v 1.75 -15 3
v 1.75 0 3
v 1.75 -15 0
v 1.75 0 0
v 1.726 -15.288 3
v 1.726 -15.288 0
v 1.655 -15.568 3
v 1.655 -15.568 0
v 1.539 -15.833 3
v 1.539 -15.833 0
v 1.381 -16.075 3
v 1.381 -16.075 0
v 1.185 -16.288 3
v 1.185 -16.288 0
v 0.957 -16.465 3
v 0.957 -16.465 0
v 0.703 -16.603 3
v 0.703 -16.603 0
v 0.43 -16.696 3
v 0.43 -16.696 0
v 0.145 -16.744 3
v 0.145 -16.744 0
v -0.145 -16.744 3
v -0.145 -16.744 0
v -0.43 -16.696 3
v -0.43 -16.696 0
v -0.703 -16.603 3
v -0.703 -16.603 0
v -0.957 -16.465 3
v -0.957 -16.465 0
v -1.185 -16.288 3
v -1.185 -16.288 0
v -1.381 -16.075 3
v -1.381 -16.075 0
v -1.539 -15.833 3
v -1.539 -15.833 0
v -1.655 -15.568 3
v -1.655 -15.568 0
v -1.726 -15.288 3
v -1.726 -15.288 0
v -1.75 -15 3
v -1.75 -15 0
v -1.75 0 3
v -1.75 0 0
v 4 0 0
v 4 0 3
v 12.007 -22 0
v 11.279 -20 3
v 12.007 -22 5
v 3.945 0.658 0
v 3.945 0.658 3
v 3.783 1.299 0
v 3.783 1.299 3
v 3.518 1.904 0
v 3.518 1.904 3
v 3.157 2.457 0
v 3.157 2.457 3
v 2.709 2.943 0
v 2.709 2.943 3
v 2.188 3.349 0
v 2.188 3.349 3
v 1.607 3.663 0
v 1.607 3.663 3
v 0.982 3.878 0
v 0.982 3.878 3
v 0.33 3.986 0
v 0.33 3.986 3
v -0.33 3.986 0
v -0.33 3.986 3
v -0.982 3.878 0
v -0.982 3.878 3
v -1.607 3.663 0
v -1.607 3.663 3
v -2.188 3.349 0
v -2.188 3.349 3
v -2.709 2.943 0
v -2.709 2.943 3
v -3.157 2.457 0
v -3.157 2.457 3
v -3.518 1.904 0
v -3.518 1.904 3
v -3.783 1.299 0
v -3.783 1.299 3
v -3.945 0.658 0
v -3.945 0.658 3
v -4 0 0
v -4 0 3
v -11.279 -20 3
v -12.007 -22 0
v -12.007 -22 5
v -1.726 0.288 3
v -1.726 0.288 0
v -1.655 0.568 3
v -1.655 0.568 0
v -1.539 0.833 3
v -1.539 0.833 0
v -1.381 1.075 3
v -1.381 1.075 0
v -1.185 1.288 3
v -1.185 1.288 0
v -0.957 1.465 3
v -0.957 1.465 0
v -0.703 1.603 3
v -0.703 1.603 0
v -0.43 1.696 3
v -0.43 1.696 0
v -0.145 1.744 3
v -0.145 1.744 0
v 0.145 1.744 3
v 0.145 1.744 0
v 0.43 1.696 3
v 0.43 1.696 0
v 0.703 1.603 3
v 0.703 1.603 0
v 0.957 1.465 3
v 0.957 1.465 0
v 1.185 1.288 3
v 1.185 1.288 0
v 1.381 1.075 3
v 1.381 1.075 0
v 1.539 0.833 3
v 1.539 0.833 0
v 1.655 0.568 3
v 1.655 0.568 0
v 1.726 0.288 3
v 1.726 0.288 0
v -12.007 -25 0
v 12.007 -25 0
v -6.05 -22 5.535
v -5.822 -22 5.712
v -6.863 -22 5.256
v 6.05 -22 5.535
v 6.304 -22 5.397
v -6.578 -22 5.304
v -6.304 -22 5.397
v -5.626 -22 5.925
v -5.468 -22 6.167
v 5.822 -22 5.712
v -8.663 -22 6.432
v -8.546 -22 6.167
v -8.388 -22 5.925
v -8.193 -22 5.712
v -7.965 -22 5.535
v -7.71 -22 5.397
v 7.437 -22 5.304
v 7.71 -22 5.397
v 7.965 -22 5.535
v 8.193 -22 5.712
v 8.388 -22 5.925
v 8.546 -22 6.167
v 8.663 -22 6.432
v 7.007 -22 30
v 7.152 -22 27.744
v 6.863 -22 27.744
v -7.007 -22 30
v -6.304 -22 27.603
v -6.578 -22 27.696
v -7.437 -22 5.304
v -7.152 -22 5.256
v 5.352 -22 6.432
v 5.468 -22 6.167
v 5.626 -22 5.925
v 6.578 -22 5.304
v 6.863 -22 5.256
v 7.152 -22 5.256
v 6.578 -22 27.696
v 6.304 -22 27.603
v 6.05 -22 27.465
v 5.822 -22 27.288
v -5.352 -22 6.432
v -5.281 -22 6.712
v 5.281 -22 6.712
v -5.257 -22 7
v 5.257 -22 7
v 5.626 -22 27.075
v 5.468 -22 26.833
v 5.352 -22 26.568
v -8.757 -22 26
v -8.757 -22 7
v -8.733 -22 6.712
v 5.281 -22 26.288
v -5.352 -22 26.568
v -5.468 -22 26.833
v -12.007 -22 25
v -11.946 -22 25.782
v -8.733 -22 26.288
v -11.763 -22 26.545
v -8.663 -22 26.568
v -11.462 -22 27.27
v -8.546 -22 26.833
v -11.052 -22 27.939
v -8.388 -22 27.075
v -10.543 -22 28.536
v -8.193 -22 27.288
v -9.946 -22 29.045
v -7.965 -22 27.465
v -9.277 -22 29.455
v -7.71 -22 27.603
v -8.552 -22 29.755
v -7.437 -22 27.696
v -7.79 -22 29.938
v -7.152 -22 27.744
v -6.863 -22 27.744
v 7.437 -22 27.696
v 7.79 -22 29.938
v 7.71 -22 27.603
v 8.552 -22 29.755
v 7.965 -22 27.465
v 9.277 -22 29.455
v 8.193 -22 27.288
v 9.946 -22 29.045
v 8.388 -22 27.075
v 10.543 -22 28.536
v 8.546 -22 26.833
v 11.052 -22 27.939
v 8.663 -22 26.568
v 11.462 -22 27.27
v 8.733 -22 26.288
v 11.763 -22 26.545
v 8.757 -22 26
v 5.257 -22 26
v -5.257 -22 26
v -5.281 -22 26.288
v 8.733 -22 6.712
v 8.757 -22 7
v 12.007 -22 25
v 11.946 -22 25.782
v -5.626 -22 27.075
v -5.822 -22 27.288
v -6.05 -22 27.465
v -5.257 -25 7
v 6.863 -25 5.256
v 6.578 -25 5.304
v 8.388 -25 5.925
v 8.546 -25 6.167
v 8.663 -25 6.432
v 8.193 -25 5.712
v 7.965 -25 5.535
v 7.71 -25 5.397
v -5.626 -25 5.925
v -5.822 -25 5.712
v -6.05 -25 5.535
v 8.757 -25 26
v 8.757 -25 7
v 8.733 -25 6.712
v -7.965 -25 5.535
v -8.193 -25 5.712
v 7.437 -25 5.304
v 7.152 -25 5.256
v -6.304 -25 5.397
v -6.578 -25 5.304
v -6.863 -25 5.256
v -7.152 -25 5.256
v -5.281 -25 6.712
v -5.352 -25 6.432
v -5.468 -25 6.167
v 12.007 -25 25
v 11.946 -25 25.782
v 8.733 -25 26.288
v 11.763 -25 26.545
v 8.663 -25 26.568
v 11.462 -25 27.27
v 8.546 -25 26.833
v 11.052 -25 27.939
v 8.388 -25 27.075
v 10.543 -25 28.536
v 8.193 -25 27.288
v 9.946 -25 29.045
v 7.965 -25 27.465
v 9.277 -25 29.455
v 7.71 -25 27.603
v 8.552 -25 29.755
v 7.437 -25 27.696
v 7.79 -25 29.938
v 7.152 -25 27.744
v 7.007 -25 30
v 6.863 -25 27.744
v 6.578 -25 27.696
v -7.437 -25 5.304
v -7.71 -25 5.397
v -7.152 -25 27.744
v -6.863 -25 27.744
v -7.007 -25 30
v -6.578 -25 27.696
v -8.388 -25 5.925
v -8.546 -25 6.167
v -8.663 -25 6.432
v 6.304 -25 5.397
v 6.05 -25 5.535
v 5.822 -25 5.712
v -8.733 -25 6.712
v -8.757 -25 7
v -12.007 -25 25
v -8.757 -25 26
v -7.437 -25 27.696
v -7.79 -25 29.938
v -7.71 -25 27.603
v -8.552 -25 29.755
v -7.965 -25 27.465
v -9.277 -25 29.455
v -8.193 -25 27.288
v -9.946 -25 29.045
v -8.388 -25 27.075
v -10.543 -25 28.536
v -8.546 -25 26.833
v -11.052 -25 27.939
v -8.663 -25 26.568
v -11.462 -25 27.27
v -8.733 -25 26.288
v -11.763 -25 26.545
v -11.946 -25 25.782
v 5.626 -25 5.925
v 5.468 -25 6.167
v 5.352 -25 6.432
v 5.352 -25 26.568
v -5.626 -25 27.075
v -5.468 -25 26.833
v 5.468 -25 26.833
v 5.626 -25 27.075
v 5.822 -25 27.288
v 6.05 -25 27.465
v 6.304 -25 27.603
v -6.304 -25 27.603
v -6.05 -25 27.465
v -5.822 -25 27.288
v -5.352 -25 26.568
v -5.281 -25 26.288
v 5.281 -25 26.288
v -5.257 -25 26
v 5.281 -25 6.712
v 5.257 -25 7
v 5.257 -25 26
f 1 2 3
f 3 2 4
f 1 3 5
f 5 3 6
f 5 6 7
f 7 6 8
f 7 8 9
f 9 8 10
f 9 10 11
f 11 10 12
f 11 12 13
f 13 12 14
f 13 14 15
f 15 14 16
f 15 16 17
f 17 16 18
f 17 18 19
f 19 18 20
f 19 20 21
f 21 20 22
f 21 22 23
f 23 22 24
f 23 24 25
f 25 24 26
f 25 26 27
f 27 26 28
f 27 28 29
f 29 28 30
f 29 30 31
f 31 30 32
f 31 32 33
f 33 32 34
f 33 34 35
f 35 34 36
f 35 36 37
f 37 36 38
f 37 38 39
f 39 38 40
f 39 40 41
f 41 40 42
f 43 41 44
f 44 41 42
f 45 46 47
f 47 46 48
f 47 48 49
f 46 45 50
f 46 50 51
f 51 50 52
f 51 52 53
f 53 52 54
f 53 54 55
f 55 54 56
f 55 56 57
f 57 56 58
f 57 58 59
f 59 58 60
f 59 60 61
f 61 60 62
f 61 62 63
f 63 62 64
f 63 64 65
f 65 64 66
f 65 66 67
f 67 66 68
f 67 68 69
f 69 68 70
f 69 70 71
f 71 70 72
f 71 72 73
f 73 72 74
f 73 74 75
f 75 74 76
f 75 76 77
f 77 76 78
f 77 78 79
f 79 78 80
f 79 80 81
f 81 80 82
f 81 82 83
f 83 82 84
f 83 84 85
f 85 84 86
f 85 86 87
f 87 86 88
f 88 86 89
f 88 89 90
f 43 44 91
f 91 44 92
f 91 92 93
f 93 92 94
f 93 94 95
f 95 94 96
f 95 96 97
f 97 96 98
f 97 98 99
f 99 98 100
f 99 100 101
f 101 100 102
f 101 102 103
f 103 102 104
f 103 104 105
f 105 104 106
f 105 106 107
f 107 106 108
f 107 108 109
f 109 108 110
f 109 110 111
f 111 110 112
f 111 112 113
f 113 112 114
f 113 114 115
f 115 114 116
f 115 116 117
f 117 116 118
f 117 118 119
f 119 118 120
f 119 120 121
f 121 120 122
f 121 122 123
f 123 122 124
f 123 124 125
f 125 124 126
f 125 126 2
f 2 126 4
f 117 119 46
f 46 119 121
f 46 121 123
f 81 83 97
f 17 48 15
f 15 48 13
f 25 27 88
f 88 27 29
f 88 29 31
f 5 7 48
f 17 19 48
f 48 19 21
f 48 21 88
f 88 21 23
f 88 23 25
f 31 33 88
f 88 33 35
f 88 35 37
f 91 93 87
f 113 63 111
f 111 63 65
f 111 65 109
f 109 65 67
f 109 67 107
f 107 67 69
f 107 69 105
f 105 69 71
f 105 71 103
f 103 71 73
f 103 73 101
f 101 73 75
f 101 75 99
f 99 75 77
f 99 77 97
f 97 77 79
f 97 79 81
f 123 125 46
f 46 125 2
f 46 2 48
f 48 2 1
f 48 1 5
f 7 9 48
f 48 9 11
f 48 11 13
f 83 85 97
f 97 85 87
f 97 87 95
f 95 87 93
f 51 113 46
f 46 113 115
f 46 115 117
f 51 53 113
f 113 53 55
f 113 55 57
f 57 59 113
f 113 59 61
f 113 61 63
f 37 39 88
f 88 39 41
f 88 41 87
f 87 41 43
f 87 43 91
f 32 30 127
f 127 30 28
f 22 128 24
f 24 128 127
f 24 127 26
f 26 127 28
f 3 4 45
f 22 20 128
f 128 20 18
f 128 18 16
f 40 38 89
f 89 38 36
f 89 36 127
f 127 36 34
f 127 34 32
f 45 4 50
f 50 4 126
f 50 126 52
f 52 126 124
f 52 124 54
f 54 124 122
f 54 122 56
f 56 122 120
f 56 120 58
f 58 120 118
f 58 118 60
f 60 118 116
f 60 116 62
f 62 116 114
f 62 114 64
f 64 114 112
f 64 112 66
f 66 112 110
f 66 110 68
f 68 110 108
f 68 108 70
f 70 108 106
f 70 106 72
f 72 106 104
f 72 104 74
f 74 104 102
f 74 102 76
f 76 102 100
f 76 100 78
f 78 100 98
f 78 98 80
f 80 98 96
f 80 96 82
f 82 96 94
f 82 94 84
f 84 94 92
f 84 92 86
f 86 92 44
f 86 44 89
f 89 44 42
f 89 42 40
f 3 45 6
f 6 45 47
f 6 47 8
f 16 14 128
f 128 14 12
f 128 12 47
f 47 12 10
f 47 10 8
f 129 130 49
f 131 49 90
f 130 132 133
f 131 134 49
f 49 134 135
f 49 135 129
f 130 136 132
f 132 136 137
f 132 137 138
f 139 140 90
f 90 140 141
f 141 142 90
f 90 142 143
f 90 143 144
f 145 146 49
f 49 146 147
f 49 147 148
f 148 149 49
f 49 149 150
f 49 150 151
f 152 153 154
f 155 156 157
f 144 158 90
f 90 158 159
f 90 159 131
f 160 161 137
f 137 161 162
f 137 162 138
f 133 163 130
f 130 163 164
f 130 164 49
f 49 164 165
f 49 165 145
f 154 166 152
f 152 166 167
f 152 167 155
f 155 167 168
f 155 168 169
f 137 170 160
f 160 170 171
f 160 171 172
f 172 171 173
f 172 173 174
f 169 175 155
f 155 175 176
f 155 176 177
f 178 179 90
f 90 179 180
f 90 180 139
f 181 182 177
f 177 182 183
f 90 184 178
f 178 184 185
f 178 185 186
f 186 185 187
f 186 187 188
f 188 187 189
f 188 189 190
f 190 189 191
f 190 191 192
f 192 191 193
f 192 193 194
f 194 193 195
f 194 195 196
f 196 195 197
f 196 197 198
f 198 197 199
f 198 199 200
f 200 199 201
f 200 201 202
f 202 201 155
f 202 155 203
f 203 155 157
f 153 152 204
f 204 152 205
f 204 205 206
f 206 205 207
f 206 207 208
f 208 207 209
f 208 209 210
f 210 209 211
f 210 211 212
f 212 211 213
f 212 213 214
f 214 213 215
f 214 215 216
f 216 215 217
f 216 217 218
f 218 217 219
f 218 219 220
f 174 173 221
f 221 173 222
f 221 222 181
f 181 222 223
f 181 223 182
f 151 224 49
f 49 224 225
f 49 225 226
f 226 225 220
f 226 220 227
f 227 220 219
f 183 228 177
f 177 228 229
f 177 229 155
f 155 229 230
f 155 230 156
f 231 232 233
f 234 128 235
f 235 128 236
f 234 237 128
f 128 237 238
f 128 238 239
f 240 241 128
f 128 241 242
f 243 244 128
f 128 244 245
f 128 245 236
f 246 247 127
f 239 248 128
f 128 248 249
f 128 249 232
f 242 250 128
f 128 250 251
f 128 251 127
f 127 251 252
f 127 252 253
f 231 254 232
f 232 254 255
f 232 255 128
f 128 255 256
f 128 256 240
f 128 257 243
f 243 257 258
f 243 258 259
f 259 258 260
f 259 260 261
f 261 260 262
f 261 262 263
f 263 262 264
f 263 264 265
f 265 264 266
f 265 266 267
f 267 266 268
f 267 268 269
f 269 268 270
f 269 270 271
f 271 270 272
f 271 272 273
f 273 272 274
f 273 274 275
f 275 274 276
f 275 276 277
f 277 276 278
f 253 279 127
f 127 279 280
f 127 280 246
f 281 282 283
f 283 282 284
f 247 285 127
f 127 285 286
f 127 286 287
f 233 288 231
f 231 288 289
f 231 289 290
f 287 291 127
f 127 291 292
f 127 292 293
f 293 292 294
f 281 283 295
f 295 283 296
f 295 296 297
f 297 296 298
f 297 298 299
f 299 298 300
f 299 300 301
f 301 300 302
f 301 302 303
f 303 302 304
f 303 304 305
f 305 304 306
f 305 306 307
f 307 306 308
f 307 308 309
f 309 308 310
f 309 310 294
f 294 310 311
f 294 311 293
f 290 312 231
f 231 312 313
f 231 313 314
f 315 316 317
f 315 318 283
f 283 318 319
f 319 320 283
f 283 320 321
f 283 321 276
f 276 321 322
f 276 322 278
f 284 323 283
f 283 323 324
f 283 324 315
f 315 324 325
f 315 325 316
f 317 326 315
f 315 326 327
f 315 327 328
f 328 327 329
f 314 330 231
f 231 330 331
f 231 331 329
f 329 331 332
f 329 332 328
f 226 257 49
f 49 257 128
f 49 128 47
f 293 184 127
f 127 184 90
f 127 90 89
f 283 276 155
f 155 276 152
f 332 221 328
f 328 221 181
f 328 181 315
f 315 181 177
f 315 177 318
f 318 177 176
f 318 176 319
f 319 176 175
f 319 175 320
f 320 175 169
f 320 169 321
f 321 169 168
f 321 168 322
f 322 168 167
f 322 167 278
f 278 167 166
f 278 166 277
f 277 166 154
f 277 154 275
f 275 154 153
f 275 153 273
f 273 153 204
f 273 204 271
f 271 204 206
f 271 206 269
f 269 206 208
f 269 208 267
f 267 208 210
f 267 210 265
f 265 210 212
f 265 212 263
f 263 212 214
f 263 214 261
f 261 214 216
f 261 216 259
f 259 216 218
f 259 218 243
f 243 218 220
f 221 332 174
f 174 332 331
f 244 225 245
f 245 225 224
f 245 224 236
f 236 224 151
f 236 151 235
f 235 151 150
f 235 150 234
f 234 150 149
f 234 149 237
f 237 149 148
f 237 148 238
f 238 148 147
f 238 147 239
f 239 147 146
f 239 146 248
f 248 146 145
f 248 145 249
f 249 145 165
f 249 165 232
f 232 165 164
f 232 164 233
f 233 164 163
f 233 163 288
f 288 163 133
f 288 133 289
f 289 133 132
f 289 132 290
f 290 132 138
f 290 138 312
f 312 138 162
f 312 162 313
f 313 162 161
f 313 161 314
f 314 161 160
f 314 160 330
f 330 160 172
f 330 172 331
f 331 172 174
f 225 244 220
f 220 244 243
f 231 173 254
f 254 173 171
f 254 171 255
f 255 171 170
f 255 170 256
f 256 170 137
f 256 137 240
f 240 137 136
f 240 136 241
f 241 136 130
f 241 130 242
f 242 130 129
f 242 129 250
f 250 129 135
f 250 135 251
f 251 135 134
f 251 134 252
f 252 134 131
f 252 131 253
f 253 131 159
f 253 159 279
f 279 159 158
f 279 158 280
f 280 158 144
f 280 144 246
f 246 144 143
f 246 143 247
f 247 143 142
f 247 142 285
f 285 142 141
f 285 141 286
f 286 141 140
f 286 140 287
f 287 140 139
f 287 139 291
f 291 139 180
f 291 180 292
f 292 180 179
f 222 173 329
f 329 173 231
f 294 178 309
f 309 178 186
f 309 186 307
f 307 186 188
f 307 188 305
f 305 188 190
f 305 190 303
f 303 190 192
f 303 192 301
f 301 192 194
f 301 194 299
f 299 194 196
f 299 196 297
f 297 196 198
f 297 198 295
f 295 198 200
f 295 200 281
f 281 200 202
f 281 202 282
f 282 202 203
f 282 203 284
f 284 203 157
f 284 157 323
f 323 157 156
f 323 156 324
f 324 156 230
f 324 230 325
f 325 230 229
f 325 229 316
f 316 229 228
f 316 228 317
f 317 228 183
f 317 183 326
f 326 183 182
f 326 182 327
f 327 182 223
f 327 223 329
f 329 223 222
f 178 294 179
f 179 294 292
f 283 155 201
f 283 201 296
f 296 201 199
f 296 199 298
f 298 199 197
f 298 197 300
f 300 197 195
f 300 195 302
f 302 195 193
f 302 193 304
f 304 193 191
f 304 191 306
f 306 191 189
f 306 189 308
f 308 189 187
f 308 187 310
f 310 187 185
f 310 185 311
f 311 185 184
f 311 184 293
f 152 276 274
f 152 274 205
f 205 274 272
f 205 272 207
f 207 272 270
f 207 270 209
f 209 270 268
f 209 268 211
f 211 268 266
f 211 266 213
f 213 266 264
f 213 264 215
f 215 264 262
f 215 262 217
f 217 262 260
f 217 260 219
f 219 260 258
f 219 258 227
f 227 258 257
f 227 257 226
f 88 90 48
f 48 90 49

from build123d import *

# Parameters (mm, degrees)
EXTRUDE_1_DEPTH     = 3
SKETCH_1_3_W        = 24.014690308
SKETCH_1_3_H        = 3
EXTRUDE_2_DEPTH     = 30
CUT_EXTRUDE_1_DEPTH = 15
FILLET_1_R          = 5
CHAMFER_1_SIZE      = 2


with BuildPart() as part:
    # 草图1 → 凸台-拉伸1 (new body)
    with BuildSketch(Plane.XY):
        with BuildLine():
            Line((12.007345154, -22), (4, 0))
            ThreePointArc((4, 0), (0, 4), (-4, 0))
            Line((-4, 0), (-12.007345154, -22))
            Line((-12.007345154, -22), (12.007345154, -22))
        make_face()
        with BuildLine():
            Line((-1.75, -15), (-1.75, 0))
            ThreePointArc((-1.75, 0), (0, 1.75), (1.75, 0))
            Line((1.75, 0), (1.75, -15))
            ThreePointArc((1.75, -15), (0, -16.75), (-1.75, -15))
        make_face(mode=Mode.SUBTRACT)
    extrude(amount=EXTRUDE_1_DEPTH)

    # 草图1<3> → 凸台-拉伸2 (add)
    with BuildSketch(Plane.XY):
        with Locations((0, -23.5)):
            Rectangle(SKETCH_1_3_W, SKETCH_1_3_H)
    extrude(amount=EXTRUDE_2_DEPTH)

    # 草图2 → 切除-拉伸1 (cut)
    with BuildSketch(Plane(origin=(0, -22, 0), x_dir=(1, 0, 0), z_dir=(0, 1, 0))):
        with BuildLine():
            ThreePointArc((-5.257345154, -7), (-7.007345154, -5.25), (-8.757345154, -7))
            Line((-8.757345154, -7), (-8.757345154, -26))
            ThreePointArc((-8.757345154, -26), (-7.007345154, -27.75), (-5.257345154, -26))
            Line((-5.257345154, -26), (-5.257345154, -7))
        make_face()
        with BuildLine():
            Line((8.757345154, -26), (8.757345154, -7))
            ThreePointArc((8.757345154, -7), (7.007345154, -5.25), (5.257345154, -7))
            Line((5.257345154, -7), (5.257345154, -26))
            ThreePointArc((5.257345154, -26), (7.007345154, -27.75), (8.757345154, -26))
        make_face()
    extrude(amount=-CUT_EXTRUDE_1_DEPTH, mode=Mode.SUBTRACT)

    # 圆角1
    fillet_1_edges = [part.edges().sort_by_distance(p)[0] for p in [
        (-12.007345154, -23.5, 30),
        (12.007345154, -23.5, 30),
    ]]
    fillet(fillet_1_edges, radius=FILLET_1_R)

    # 倒角1
    chamfer_1_edges = [part.edges().sort_by_distance(p)[0] for p in [
        (0, -22, 3),
    ]]
    chamfer(chamfer_1_edges, length=CHAMFER_1_SIZE)


solid = part.part
